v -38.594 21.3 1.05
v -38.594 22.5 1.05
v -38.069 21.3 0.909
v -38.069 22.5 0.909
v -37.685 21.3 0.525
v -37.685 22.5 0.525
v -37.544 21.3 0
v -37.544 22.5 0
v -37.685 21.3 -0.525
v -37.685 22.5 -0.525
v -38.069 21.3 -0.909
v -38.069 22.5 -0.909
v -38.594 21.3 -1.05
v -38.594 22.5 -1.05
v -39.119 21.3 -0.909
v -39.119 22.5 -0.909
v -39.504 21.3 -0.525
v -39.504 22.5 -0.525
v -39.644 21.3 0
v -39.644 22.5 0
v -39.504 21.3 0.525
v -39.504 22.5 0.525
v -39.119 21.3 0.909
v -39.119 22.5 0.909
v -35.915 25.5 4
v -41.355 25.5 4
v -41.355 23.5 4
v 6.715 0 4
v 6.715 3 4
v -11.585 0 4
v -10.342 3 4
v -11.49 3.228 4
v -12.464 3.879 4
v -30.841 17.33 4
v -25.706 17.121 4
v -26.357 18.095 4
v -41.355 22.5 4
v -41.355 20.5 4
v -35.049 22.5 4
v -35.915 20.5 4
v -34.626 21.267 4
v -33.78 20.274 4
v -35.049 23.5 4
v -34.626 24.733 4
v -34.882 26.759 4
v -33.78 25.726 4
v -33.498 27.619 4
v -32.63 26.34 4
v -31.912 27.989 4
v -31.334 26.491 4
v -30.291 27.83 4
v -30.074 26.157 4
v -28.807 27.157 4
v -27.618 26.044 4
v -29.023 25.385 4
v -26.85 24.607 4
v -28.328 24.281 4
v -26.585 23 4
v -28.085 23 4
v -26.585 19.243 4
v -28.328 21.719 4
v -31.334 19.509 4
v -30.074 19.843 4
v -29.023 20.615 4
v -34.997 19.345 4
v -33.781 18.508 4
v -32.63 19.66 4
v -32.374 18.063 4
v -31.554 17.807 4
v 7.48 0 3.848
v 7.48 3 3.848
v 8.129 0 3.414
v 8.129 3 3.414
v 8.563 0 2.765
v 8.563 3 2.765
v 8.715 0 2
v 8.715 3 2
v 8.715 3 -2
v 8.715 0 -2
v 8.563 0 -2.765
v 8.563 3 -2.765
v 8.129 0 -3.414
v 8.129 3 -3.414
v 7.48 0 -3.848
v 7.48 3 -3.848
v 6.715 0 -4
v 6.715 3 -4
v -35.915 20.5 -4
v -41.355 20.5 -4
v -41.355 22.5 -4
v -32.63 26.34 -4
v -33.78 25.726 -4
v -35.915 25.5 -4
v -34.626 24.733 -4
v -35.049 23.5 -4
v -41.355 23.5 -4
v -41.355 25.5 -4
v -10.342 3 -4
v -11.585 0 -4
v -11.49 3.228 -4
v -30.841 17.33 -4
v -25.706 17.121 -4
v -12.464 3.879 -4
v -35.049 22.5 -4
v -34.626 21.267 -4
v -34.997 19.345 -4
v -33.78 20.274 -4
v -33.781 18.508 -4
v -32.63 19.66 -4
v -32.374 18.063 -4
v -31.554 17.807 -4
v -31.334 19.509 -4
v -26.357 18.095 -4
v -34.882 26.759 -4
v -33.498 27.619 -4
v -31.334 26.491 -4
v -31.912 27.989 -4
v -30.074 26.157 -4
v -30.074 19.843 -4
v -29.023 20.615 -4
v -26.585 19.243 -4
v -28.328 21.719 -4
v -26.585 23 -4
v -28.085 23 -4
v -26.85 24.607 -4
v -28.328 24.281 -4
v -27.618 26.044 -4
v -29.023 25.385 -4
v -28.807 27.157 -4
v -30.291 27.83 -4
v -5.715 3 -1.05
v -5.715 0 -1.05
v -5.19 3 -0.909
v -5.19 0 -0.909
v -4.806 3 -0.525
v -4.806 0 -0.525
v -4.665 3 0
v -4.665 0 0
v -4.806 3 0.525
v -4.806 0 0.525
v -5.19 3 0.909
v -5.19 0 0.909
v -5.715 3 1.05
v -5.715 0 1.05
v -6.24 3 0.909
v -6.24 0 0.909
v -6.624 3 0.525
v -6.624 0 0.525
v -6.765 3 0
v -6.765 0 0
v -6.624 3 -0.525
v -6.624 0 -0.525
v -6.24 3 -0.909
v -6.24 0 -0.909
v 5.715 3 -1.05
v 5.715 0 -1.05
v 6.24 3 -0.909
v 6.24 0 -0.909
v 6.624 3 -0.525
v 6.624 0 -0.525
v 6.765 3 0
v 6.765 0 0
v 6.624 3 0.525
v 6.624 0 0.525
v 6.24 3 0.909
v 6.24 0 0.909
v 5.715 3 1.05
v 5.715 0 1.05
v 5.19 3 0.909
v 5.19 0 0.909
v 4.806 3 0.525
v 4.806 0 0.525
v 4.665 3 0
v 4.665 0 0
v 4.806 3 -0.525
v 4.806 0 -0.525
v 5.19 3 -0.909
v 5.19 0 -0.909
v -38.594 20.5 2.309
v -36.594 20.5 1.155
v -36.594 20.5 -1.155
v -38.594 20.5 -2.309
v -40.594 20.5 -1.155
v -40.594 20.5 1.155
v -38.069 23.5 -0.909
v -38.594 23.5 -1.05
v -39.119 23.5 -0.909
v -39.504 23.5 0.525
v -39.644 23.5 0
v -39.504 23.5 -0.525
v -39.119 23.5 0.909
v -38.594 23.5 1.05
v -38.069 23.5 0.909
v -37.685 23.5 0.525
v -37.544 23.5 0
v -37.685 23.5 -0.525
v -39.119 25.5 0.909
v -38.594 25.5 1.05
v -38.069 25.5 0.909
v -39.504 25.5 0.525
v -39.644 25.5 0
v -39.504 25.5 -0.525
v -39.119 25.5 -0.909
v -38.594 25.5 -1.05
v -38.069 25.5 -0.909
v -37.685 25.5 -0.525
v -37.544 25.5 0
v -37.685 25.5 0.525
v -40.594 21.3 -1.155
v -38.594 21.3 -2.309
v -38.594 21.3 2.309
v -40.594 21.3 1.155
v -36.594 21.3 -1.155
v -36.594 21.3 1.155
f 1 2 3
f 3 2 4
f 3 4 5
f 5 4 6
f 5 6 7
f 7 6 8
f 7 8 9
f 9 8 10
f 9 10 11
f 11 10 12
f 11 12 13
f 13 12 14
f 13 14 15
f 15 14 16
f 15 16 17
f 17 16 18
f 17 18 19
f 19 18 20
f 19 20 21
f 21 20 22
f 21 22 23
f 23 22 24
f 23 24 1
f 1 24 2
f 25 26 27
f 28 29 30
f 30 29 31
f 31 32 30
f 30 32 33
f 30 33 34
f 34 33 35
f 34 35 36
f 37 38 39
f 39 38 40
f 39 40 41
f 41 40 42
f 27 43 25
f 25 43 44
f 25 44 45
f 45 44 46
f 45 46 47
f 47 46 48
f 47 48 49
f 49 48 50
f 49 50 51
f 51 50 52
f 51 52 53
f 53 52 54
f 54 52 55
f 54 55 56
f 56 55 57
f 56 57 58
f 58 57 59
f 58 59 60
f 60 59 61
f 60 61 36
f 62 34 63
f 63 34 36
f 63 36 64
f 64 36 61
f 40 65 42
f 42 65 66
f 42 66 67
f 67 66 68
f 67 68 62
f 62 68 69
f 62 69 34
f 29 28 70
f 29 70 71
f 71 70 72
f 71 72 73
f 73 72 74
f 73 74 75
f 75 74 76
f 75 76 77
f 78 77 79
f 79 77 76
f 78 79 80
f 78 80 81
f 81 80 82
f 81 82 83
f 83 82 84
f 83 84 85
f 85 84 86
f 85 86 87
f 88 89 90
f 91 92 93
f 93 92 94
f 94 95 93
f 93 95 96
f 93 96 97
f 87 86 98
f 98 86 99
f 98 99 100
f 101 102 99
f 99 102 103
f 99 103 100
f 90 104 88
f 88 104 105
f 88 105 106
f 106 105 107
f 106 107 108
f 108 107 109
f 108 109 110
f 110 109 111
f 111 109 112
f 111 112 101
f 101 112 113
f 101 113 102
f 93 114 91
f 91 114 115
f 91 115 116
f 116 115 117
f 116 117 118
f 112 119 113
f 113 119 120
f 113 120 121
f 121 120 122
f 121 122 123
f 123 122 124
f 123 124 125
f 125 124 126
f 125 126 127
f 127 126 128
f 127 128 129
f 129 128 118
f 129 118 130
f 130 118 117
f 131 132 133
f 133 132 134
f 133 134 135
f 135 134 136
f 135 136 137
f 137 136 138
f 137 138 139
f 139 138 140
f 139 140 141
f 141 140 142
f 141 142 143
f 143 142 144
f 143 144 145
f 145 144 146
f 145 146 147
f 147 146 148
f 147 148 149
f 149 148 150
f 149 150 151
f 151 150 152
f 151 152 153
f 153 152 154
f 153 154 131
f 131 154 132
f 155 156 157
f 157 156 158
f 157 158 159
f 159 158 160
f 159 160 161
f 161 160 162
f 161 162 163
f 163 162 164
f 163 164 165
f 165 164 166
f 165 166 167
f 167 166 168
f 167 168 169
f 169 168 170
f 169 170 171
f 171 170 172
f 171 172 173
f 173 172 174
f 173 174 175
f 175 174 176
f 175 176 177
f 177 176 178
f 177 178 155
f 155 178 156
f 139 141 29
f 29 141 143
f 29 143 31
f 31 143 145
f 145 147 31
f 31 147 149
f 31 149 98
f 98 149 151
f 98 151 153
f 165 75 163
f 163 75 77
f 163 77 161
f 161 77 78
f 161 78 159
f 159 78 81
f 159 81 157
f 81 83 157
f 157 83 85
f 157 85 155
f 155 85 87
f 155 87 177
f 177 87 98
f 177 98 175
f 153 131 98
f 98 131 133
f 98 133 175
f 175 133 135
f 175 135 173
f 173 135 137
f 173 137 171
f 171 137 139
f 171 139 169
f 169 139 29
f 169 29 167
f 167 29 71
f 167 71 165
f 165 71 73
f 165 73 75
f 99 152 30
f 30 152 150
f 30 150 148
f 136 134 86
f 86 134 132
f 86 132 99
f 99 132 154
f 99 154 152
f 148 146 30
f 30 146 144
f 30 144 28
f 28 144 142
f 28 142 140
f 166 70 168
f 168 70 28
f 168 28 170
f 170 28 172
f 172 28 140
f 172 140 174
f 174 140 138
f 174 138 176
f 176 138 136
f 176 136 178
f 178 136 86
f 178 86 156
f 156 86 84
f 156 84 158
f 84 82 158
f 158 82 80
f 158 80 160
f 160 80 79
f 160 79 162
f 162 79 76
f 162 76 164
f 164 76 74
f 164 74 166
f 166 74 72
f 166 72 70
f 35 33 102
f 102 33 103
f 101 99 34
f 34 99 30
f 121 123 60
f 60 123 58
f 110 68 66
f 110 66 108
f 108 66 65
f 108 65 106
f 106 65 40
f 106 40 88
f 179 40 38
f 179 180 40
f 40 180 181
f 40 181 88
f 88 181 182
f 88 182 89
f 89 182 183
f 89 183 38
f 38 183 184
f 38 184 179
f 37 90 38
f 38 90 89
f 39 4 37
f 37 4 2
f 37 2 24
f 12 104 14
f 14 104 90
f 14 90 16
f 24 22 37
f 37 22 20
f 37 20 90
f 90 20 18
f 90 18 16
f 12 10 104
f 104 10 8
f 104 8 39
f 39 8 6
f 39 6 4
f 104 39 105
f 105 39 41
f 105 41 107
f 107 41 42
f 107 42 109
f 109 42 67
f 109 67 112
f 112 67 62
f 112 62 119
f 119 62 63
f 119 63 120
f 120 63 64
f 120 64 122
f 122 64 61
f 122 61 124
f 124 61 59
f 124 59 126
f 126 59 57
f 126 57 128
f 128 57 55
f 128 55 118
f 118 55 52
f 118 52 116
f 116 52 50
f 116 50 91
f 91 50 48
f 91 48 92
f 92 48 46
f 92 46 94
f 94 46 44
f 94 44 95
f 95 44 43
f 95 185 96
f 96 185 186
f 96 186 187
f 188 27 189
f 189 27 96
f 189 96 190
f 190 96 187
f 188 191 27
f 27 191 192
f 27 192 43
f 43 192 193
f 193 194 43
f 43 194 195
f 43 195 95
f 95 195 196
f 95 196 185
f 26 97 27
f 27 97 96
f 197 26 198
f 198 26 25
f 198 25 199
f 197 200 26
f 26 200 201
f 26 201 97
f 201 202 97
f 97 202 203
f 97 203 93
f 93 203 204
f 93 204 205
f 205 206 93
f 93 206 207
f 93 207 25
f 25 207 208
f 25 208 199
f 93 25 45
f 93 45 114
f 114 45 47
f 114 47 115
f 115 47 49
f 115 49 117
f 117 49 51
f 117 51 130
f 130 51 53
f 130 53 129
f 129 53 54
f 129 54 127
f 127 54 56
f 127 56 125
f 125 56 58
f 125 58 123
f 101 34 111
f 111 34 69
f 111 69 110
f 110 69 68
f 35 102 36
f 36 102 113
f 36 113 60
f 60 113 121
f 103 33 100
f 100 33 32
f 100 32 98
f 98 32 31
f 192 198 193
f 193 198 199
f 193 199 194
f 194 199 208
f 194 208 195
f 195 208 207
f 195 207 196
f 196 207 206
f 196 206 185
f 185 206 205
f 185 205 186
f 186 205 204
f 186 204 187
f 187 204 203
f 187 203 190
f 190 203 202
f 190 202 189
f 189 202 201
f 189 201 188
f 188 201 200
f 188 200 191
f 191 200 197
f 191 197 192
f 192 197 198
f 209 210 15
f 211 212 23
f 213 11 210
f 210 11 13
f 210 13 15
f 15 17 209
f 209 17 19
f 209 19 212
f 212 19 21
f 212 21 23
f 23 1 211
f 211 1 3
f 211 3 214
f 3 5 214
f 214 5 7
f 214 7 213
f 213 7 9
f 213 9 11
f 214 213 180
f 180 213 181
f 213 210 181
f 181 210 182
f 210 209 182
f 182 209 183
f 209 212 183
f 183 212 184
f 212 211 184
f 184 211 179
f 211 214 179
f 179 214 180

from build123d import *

# Parameters (mm, degrees)
SKETCH1_R                = 1.05
BOSS_EXTRUDE1_DEPTH      = 3
BOSS_EXTRUDE2_DEPTH      = 4
BOSS_EXTRUDE2_DEPTH_BACK = 4
LOFT2_START              = -4
LOFT2_DEPTH              = 8
FILLET1_R                = 3
CUT_EXTRUDE1_DEPTH       = 49.748957751
CUT_EXTRUDE1_DEPTH_BACK  = 49.748957751
SKETCH8_R                = 1.05
CUT_EXTRUDE2_DEPTH       = 0.8


# Read off the part's stored shape, not the designer's step: Loft2
with BuildPart() as part:
    # Sketch1 → Boss-Extrude1 (new body)
    with BuildSketch(Plane(origin=(0, 0, 0), x_dir=(1, 0, 0), z_dir=(0, 1, 0))):
        with BuildLine():
            Line((-6.715, -4), (6.715, -4))
            ThreePointArc((6.715, -4), (8.129213562, -3.414213562), (8.715, -2))
            Line((8.715, -2), (8.715, 2))
            ThreePointArc((8.715, 2), (8.129213562, 3.414213562), (6.715, 4))
            Line((6.715, 4), (-6.715, 4))
            Line((-6.715, 4), (-11.585, 4))
            Line((-11.585, 4), (-11.585, -4))
            Line((-11.585, -4), (-6.715, -4))
        make_face()
        with Locations(Location((-5.715, 0, 0), (0, 0, 270))):
            Circle(SKETCH1_R, mode=Mode.SUBTRACT)
        with Locations(Location((5.715, 0, 0), (0, 0, 270))):
            Circle(SKETCH1_R, mode=Mode.SUBTRACT)
    extrude(amount=BOSS_EXTRUDE1_DEPTH)



with BuildPart() as body_2:
    # Sketch3 → Boss-Extrude2 (new, two sides: drawn at the far end of the back side and taken through both)
    with BuildSketch(Plane.XY.offset(-BOSS_EXTRUDE2_DEPTH_BACK)):
        with BuildLine():
            Line((-41.354696007, 22.5), (-41.354696007, 21.5))
            Line((-41.354696007, 21.5), (-41.354696007, 20.5))
            Line((-41.354696007, 20.5), (-36.354696007, 20.5))
            Line((-36.354696007, 20.5), (-35.915127019, 20.5))
            ThreePointArc((-35.915127019, 20.5), (-34.085, 18.669872981), (-31.585, 18))
            Line((-31.585, 18), (-26.585, 18))
            Line((-26.585, 18), (-26.585, 23))
            ThreePointArc((-26.585, 23), (-30.290904774, 27.829629131), (-35.915127019, 25.5))
            Line((-35.915127019, 25.5), (-36.354696007, 25.5))
            Line((-36.354696007, 25.5), (-41.354696007, 25.5))
            Line((-41.354696007, 25.5), (-41.354696007, 24.5))
            Line((-41.354696007, 24.5), (-41.354696007, 23.5))
            Line((-41.354696007, 23.5), (-36.354696007, 23.5))
            Line((-36.354696007, 23.5), (-35.049101615, 23.5))
            ThreePointArc((-35.049101615, 23.5), (-31.334356481, 26.491013868), (-28.085, 23))
            ThreePointArc((-28.085, 23), (-31.334356481, 19.508986132), (-35.049101615, 22.5))
            Line((-35.049101615, 22.5), (-36.354696007, 22.5))
            Line((-36.354696007, 22.5), (-41.354696007, 22.5))
        make_face()
    extrude(amount=BOSS_EXTRUDE2_DEPTH + BOSS_EXTRUDE2_DEPTH_BACK)


with BuildPart() as part_1:
    add(part.part)

    add(body_2.part)  # Loft2 merges body 2
    # Loft2 outline → Loft2 (add)
    with BuildSketch(Plane.XY.offset(LOFT2_START)):
        Polygon((-11.585, 3), (-26.585, 18), (-31.585, 18), (-11.585, 0), align=None)
    extrude(amount=LOFT2_DEPTH)

    # Fillet1
    fillet1_edges = [part_1.edges().sort_by_distance(p)[0] for p in [
        (-31.585, 18, 0),
        (-26.585, 18, 0),
        (-11.585, 3, 0),
    ]]
    fillet(fillet1_edges, radius=FILLET1_R)

    # Sketch8 → Cut-Extrude1 (cut, two sides: drawn at the far end of the back side and taken through both)
    with BuildSketch(Plane(origin=(0, 25.5, 0), x_dir=(1, 0, 0), z_dir=(0, 1, 0)).offset(-CUT_EXTRUDE1_DEPTH_BACK)):
        with Locations(Location((-38.59424289, 0, 0), (0, 0, 90))):
            Circle(SKETCH8_R)
    extrude(amount=CUT_EXTRUDE1_DEPTH + CUT_EXTRUDE1_DEPTH_BACK, mode=Mode.SUBTRACT)

    # Sketch9 → Cut-Extrude2 (cut)
    with BuildSketch(Plane.XZ.offset(-20.5)):
        Polygon((-36.59424289, 1.154700538), (-38.59424289, 2.309401077), (-40.59424289, 1.154700538), (-40.59424289, -1.154700538), (-38.59424289, -2.309401077), (-36.59424289, -1.154700538), align=None)
    extrude(amount=-CUT_EXTRUDE2_DEPTH, mode=Mode.SUBTRACT)


solid = part_1.part
